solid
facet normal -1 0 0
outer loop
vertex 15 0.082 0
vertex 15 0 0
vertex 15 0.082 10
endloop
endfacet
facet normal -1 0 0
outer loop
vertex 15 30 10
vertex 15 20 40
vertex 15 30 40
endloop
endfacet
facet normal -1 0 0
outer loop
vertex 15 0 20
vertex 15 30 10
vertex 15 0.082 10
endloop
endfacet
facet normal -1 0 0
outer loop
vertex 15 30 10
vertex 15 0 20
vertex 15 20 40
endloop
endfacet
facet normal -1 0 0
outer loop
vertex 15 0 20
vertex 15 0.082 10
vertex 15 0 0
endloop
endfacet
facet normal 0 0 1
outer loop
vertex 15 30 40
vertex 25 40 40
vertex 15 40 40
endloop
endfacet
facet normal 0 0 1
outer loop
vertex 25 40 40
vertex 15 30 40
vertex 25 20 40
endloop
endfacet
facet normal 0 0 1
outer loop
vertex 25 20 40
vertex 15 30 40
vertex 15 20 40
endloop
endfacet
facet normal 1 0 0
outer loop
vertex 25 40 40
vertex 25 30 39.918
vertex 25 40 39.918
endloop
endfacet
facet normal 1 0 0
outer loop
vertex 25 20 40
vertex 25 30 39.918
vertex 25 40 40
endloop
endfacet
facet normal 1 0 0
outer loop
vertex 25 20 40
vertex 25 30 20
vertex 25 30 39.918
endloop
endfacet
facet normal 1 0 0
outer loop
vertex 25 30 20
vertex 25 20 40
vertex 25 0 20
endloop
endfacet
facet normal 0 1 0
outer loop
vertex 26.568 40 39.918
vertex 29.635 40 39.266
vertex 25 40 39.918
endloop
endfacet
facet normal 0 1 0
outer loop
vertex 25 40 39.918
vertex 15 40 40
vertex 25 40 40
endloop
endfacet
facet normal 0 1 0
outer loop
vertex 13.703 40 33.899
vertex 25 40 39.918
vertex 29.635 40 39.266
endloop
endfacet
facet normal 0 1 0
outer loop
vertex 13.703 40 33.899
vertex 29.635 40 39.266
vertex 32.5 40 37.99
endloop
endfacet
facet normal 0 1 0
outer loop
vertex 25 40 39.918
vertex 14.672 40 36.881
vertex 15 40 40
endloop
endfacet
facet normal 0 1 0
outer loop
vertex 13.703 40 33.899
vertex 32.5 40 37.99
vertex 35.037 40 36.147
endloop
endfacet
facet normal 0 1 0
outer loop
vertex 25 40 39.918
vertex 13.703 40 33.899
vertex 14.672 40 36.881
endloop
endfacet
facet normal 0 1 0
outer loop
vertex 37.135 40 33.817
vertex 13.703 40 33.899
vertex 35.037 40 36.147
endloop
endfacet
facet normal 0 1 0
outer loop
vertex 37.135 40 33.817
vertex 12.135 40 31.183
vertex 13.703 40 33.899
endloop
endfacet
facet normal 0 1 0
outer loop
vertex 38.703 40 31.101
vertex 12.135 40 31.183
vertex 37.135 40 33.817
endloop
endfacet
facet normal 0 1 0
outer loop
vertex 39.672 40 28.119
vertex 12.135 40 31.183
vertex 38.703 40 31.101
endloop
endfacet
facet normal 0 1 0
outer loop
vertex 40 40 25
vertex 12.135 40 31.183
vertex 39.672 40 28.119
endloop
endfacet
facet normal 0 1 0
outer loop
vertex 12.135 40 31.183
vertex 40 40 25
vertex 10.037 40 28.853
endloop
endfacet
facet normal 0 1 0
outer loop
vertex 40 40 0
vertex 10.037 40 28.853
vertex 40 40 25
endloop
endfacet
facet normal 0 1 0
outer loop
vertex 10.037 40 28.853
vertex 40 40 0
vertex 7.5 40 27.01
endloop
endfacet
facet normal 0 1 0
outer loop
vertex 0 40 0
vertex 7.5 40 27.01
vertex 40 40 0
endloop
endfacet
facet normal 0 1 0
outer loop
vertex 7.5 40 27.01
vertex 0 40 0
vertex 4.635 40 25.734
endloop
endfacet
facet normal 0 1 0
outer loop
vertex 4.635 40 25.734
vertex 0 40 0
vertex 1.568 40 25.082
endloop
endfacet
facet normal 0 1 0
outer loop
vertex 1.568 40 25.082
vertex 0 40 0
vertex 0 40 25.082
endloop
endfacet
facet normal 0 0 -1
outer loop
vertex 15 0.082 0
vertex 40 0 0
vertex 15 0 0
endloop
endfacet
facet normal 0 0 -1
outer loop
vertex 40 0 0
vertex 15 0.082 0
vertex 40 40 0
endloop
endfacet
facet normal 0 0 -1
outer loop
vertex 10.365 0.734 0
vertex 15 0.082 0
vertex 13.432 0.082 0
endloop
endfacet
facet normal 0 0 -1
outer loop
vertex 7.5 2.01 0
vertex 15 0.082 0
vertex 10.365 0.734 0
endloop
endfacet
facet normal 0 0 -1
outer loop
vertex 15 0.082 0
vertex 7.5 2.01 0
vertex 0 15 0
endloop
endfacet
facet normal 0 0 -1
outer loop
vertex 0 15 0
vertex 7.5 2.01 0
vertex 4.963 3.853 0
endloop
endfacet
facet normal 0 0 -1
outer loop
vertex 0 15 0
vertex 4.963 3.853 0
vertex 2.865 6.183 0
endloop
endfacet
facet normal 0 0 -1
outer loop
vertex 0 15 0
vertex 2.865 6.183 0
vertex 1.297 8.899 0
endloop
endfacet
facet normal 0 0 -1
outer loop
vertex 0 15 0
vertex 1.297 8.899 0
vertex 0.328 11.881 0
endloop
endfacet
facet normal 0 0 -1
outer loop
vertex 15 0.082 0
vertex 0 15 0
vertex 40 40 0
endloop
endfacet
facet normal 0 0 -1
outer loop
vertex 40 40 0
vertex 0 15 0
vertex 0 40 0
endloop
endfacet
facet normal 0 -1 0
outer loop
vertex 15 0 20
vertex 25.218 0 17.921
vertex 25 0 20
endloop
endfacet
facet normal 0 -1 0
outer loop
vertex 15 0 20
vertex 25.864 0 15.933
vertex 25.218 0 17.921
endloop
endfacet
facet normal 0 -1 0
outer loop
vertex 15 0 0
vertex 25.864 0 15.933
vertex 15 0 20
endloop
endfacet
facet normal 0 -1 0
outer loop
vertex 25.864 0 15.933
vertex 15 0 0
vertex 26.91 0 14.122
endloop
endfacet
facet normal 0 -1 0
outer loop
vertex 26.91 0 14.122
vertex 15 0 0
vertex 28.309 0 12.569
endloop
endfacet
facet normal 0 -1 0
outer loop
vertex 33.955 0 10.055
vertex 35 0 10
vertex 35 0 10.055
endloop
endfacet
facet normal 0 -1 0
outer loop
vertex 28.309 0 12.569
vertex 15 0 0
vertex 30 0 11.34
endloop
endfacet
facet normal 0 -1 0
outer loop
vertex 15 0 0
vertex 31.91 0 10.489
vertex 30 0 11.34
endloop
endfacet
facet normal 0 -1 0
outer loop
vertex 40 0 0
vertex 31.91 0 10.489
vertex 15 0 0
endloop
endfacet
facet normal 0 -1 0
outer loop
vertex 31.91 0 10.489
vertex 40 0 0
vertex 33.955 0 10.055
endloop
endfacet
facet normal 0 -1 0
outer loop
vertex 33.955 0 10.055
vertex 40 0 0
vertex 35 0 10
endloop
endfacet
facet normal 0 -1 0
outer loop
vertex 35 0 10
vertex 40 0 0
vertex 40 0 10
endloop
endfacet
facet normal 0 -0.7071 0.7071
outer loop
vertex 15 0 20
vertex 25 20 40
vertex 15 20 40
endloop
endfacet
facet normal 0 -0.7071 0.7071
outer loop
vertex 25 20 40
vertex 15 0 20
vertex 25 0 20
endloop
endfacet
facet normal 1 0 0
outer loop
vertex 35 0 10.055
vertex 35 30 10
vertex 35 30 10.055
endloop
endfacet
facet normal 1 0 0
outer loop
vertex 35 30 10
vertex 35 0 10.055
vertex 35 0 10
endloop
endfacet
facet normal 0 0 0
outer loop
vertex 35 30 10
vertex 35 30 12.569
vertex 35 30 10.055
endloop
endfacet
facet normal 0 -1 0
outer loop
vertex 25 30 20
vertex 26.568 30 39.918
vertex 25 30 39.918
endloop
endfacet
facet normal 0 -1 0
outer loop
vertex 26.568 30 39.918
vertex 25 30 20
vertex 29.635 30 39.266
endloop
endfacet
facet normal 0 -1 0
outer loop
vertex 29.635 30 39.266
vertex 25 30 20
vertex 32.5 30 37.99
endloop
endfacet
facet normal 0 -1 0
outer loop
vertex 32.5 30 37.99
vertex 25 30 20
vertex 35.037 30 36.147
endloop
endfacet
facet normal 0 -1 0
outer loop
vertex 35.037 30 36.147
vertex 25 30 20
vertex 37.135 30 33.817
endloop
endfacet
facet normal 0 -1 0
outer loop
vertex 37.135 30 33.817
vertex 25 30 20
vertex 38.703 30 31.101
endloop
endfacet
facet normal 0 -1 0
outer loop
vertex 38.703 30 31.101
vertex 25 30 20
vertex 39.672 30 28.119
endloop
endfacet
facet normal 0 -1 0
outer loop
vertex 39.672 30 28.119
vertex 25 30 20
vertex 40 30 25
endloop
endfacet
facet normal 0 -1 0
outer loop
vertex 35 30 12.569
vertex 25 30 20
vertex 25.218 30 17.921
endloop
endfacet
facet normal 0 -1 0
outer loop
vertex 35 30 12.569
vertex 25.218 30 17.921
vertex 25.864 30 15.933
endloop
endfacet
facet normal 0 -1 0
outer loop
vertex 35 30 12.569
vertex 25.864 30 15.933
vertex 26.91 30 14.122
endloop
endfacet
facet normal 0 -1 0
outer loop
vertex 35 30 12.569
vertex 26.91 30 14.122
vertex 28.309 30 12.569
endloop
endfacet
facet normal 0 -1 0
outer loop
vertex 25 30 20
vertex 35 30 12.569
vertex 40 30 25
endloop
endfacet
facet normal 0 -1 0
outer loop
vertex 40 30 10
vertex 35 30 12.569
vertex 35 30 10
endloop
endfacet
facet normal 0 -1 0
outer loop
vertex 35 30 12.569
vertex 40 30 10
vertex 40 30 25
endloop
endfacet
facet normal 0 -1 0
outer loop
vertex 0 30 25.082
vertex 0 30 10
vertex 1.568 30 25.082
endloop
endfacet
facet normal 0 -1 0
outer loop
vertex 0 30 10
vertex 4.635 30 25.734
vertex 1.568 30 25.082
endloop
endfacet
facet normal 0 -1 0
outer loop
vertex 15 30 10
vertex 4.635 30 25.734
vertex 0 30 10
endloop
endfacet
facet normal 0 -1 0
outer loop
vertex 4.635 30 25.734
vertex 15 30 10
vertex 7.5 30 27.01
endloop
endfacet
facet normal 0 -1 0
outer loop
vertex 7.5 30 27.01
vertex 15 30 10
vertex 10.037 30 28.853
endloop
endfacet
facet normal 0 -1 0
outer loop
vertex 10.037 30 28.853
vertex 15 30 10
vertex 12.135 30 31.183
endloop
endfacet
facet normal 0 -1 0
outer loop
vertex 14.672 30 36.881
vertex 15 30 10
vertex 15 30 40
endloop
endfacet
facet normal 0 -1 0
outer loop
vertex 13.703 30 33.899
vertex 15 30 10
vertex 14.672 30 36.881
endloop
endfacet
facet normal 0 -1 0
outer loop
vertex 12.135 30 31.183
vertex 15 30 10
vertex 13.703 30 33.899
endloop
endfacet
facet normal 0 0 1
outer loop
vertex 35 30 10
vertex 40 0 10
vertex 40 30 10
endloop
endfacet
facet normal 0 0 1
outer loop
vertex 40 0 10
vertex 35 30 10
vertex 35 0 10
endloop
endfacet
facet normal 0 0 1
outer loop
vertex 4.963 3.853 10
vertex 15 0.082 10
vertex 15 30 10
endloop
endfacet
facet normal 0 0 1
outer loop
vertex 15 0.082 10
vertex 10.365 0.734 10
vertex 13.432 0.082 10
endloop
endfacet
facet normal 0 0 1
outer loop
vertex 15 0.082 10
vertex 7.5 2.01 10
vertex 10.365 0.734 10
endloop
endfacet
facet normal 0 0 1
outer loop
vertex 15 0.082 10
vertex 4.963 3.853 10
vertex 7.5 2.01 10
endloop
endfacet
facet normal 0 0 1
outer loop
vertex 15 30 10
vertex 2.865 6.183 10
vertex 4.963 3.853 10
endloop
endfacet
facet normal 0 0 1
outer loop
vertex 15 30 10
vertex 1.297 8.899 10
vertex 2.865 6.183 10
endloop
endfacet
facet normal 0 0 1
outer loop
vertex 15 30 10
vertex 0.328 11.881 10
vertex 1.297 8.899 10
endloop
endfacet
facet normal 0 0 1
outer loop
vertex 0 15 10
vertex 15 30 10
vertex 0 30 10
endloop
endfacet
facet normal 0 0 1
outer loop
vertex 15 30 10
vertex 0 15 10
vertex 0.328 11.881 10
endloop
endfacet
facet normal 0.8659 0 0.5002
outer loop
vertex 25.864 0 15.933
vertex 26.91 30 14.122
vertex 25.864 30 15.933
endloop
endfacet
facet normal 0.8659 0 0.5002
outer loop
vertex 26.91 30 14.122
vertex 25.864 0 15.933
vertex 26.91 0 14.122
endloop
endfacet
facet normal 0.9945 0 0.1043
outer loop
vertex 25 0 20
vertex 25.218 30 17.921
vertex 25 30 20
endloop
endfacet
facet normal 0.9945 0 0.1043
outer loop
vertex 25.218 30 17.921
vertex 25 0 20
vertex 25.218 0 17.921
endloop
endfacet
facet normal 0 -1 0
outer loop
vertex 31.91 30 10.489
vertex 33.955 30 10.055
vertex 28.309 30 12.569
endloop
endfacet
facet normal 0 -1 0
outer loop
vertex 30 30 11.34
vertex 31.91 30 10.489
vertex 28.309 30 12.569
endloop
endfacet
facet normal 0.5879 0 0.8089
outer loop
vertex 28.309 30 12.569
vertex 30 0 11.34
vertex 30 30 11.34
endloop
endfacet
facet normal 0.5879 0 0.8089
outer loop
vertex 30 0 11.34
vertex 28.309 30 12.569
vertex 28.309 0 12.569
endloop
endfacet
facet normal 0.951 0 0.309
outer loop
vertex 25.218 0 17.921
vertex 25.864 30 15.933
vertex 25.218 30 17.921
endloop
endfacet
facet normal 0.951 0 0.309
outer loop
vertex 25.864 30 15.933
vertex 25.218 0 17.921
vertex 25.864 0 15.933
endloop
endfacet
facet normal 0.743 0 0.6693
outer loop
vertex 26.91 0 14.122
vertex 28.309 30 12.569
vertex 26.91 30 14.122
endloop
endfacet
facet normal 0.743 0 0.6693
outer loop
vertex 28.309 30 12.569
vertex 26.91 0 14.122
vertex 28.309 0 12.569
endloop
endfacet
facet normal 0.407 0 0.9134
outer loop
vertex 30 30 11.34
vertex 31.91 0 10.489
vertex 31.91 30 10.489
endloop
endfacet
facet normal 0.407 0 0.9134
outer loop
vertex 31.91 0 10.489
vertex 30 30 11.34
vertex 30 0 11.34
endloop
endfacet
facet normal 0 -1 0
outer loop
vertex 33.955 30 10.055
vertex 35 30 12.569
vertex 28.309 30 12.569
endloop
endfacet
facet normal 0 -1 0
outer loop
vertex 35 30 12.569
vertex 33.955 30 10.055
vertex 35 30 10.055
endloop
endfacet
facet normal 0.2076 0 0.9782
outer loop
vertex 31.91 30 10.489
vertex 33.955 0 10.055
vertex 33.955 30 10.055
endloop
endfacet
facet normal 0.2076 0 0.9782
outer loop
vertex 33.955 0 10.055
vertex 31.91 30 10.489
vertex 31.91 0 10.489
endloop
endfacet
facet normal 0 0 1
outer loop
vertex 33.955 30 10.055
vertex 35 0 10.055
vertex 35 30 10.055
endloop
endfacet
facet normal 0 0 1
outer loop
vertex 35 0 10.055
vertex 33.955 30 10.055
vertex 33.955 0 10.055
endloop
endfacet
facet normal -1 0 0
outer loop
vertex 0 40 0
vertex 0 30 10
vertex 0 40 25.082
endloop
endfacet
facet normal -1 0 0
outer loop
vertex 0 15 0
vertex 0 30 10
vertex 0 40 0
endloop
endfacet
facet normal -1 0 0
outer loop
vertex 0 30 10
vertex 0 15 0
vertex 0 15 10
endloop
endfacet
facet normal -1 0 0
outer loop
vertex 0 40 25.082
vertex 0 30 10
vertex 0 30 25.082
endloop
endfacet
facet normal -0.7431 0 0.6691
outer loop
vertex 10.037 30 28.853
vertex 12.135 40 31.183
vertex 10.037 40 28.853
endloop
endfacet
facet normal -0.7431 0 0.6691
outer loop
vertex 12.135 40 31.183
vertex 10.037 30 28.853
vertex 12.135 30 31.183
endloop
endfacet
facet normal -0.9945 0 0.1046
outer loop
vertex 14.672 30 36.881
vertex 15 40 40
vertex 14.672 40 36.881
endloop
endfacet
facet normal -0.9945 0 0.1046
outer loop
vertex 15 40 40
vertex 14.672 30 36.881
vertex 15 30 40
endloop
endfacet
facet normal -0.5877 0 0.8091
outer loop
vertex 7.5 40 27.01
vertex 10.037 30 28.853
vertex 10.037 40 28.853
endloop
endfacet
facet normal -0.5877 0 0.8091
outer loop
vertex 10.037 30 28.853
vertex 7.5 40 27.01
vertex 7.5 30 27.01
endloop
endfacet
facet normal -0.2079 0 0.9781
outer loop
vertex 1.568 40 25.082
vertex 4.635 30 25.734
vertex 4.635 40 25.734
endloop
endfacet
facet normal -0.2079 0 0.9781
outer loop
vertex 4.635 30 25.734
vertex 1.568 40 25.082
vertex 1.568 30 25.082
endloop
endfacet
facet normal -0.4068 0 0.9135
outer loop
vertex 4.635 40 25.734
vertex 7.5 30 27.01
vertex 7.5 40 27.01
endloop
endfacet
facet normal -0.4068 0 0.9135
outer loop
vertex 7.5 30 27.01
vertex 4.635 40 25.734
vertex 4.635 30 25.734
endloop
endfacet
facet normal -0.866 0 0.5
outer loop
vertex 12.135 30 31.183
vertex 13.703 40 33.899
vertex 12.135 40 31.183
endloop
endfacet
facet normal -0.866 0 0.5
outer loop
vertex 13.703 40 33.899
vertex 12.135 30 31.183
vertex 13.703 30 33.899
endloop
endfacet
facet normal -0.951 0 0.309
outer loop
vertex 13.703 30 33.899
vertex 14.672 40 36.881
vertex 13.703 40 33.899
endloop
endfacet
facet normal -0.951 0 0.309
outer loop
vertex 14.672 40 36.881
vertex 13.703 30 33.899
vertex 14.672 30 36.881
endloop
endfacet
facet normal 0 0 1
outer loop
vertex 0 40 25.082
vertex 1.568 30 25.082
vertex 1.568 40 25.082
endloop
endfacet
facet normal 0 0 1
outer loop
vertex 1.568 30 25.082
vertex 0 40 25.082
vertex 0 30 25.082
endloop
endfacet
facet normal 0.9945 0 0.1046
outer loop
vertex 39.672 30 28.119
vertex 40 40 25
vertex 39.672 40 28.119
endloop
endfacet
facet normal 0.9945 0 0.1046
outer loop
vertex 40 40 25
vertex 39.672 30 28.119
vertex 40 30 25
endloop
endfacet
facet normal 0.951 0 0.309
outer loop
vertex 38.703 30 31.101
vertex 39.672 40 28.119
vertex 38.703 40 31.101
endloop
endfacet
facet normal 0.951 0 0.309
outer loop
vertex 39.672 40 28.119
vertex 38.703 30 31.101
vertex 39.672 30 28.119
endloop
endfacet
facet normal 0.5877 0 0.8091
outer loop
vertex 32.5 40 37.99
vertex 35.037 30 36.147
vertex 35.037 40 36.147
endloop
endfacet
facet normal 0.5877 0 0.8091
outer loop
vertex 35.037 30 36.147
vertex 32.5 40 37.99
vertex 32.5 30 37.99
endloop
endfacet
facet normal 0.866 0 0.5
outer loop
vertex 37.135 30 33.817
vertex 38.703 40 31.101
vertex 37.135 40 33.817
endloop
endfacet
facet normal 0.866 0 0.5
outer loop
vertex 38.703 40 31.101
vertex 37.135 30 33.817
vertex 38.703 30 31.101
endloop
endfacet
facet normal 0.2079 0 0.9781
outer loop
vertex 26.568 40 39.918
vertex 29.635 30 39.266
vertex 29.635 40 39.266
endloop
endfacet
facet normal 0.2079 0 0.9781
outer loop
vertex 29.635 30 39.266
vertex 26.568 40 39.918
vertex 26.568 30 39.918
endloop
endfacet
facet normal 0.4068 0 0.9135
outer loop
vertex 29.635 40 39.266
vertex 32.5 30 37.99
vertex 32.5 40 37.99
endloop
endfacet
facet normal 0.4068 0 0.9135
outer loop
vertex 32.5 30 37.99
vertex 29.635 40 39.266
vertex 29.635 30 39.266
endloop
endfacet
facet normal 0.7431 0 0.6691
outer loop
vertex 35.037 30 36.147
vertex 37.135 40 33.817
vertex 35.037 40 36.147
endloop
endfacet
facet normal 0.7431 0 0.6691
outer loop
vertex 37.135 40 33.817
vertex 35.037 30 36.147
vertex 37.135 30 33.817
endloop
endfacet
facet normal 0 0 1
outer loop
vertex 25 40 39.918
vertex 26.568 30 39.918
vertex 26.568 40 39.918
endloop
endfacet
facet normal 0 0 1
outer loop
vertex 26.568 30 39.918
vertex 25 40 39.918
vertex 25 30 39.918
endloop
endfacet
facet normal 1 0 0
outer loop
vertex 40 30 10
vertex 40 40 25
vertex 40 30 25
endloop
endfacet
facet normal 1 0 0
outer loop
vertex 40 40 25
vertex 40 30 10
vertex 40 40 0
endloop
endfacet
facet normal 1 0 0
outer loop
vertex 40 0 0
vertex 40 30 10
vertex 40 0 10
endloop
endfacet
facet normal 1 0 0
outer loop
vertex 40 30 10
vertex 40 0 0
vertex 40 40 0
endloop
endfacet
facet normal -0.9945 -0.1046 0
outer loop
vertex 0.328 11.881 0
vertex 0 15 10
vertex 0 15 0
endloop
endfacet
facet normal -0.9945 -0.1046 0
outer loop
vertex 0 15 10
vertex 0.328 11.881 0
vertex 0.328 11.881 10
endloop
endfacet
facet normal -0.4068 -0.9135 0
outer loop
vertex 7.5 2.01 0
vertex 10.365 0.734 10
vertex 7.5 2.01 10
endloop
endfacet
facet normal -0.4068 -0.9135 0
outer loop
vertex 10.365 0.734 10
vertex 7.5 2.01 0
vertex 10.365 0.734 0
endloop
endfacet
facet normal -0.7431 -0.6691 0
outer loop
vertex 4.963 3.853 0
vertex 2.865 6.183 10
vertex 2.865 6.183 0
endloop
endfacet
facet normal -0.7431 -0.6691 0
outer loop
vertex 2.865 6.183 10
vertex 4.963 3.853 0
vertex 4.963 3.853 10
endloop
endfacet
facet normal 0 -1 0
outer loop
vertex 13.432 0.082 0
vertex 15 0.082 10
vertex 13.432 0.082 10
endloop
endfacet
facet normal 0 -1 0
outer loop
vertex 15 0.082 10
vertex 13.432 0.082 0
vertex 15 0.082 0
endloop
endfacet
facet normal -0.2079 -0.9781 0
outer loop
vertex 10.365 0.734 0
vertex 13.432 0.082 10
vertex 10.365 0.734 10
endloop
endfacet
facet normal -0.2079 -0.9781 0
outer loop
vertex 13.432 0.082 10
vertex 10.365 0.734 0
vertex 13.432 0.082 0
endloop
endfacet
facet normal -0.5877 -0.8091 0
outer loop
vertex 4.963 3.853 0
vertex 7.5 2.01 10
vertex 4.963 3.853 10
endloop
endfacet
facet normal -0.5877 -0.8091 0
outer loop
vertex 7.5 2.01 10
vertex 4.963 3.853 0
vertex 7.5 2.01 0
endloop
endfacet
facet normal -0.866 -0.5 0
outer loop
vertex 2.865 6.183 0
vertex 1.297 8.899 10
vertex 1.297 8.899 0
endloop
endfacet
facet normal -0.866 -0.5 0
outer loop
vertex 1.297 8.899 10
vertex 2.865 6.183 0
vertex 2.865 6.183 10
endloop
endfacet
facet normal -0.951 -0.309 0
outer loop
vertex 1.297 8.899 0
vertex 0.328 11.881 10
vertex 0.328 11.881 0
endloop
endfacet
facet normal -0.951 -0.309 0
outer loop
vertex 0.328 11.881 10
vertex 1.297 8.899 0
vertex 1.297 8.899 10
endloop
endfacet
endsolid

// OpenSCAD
  // base
          translate([15, 15, 0])
 cylinder(r1=15, r2=15, h=10, center=false);
 
 translate([0, 15, 0])
    cube([40, 25, 10]);
           translate([20, 0, 0])
        cube([20, 40, 10]);

// pilar central
difference(){
      translate([15, 0, 0])
       cube([10, 40, 40]);
      translate([15, 0, 20])
         rotate([45, 0, 0]) 
    cube([10, 40, 40]);                   
}

// Soporte pilar
difference(){
      translate([25, 0, 10])
       cube([10, 30, 10]);
               translate([35, 30, 20])
         rotate([90, 0, 0])    
        cylinder(r1=10, r2=10, h=30, center=false);
}
     
     // Pared trasera izquierda
     difference(){
         translate([0, 30, 0])
       cube([25, 10, 40]);
               translate([0, 40, 40])
         rotate([90, 0, 0])    
        cylinder(r1=15, r2=15, h=10, center=false);
     }
     
     // pared trasera derecha
     union(){
     intersection(){
                    translate([25, 40, 25])
         rotate([90, 0, 0])    
        cylinder(r1=15, r2=15, h=10, center=false);
                  translate([25, 30, 0])
       cube([15, 10, 40]);
     
         }
       translate([25, 30, 10])
       cube([15, 10, 15]);
     }
     

    
    
   
